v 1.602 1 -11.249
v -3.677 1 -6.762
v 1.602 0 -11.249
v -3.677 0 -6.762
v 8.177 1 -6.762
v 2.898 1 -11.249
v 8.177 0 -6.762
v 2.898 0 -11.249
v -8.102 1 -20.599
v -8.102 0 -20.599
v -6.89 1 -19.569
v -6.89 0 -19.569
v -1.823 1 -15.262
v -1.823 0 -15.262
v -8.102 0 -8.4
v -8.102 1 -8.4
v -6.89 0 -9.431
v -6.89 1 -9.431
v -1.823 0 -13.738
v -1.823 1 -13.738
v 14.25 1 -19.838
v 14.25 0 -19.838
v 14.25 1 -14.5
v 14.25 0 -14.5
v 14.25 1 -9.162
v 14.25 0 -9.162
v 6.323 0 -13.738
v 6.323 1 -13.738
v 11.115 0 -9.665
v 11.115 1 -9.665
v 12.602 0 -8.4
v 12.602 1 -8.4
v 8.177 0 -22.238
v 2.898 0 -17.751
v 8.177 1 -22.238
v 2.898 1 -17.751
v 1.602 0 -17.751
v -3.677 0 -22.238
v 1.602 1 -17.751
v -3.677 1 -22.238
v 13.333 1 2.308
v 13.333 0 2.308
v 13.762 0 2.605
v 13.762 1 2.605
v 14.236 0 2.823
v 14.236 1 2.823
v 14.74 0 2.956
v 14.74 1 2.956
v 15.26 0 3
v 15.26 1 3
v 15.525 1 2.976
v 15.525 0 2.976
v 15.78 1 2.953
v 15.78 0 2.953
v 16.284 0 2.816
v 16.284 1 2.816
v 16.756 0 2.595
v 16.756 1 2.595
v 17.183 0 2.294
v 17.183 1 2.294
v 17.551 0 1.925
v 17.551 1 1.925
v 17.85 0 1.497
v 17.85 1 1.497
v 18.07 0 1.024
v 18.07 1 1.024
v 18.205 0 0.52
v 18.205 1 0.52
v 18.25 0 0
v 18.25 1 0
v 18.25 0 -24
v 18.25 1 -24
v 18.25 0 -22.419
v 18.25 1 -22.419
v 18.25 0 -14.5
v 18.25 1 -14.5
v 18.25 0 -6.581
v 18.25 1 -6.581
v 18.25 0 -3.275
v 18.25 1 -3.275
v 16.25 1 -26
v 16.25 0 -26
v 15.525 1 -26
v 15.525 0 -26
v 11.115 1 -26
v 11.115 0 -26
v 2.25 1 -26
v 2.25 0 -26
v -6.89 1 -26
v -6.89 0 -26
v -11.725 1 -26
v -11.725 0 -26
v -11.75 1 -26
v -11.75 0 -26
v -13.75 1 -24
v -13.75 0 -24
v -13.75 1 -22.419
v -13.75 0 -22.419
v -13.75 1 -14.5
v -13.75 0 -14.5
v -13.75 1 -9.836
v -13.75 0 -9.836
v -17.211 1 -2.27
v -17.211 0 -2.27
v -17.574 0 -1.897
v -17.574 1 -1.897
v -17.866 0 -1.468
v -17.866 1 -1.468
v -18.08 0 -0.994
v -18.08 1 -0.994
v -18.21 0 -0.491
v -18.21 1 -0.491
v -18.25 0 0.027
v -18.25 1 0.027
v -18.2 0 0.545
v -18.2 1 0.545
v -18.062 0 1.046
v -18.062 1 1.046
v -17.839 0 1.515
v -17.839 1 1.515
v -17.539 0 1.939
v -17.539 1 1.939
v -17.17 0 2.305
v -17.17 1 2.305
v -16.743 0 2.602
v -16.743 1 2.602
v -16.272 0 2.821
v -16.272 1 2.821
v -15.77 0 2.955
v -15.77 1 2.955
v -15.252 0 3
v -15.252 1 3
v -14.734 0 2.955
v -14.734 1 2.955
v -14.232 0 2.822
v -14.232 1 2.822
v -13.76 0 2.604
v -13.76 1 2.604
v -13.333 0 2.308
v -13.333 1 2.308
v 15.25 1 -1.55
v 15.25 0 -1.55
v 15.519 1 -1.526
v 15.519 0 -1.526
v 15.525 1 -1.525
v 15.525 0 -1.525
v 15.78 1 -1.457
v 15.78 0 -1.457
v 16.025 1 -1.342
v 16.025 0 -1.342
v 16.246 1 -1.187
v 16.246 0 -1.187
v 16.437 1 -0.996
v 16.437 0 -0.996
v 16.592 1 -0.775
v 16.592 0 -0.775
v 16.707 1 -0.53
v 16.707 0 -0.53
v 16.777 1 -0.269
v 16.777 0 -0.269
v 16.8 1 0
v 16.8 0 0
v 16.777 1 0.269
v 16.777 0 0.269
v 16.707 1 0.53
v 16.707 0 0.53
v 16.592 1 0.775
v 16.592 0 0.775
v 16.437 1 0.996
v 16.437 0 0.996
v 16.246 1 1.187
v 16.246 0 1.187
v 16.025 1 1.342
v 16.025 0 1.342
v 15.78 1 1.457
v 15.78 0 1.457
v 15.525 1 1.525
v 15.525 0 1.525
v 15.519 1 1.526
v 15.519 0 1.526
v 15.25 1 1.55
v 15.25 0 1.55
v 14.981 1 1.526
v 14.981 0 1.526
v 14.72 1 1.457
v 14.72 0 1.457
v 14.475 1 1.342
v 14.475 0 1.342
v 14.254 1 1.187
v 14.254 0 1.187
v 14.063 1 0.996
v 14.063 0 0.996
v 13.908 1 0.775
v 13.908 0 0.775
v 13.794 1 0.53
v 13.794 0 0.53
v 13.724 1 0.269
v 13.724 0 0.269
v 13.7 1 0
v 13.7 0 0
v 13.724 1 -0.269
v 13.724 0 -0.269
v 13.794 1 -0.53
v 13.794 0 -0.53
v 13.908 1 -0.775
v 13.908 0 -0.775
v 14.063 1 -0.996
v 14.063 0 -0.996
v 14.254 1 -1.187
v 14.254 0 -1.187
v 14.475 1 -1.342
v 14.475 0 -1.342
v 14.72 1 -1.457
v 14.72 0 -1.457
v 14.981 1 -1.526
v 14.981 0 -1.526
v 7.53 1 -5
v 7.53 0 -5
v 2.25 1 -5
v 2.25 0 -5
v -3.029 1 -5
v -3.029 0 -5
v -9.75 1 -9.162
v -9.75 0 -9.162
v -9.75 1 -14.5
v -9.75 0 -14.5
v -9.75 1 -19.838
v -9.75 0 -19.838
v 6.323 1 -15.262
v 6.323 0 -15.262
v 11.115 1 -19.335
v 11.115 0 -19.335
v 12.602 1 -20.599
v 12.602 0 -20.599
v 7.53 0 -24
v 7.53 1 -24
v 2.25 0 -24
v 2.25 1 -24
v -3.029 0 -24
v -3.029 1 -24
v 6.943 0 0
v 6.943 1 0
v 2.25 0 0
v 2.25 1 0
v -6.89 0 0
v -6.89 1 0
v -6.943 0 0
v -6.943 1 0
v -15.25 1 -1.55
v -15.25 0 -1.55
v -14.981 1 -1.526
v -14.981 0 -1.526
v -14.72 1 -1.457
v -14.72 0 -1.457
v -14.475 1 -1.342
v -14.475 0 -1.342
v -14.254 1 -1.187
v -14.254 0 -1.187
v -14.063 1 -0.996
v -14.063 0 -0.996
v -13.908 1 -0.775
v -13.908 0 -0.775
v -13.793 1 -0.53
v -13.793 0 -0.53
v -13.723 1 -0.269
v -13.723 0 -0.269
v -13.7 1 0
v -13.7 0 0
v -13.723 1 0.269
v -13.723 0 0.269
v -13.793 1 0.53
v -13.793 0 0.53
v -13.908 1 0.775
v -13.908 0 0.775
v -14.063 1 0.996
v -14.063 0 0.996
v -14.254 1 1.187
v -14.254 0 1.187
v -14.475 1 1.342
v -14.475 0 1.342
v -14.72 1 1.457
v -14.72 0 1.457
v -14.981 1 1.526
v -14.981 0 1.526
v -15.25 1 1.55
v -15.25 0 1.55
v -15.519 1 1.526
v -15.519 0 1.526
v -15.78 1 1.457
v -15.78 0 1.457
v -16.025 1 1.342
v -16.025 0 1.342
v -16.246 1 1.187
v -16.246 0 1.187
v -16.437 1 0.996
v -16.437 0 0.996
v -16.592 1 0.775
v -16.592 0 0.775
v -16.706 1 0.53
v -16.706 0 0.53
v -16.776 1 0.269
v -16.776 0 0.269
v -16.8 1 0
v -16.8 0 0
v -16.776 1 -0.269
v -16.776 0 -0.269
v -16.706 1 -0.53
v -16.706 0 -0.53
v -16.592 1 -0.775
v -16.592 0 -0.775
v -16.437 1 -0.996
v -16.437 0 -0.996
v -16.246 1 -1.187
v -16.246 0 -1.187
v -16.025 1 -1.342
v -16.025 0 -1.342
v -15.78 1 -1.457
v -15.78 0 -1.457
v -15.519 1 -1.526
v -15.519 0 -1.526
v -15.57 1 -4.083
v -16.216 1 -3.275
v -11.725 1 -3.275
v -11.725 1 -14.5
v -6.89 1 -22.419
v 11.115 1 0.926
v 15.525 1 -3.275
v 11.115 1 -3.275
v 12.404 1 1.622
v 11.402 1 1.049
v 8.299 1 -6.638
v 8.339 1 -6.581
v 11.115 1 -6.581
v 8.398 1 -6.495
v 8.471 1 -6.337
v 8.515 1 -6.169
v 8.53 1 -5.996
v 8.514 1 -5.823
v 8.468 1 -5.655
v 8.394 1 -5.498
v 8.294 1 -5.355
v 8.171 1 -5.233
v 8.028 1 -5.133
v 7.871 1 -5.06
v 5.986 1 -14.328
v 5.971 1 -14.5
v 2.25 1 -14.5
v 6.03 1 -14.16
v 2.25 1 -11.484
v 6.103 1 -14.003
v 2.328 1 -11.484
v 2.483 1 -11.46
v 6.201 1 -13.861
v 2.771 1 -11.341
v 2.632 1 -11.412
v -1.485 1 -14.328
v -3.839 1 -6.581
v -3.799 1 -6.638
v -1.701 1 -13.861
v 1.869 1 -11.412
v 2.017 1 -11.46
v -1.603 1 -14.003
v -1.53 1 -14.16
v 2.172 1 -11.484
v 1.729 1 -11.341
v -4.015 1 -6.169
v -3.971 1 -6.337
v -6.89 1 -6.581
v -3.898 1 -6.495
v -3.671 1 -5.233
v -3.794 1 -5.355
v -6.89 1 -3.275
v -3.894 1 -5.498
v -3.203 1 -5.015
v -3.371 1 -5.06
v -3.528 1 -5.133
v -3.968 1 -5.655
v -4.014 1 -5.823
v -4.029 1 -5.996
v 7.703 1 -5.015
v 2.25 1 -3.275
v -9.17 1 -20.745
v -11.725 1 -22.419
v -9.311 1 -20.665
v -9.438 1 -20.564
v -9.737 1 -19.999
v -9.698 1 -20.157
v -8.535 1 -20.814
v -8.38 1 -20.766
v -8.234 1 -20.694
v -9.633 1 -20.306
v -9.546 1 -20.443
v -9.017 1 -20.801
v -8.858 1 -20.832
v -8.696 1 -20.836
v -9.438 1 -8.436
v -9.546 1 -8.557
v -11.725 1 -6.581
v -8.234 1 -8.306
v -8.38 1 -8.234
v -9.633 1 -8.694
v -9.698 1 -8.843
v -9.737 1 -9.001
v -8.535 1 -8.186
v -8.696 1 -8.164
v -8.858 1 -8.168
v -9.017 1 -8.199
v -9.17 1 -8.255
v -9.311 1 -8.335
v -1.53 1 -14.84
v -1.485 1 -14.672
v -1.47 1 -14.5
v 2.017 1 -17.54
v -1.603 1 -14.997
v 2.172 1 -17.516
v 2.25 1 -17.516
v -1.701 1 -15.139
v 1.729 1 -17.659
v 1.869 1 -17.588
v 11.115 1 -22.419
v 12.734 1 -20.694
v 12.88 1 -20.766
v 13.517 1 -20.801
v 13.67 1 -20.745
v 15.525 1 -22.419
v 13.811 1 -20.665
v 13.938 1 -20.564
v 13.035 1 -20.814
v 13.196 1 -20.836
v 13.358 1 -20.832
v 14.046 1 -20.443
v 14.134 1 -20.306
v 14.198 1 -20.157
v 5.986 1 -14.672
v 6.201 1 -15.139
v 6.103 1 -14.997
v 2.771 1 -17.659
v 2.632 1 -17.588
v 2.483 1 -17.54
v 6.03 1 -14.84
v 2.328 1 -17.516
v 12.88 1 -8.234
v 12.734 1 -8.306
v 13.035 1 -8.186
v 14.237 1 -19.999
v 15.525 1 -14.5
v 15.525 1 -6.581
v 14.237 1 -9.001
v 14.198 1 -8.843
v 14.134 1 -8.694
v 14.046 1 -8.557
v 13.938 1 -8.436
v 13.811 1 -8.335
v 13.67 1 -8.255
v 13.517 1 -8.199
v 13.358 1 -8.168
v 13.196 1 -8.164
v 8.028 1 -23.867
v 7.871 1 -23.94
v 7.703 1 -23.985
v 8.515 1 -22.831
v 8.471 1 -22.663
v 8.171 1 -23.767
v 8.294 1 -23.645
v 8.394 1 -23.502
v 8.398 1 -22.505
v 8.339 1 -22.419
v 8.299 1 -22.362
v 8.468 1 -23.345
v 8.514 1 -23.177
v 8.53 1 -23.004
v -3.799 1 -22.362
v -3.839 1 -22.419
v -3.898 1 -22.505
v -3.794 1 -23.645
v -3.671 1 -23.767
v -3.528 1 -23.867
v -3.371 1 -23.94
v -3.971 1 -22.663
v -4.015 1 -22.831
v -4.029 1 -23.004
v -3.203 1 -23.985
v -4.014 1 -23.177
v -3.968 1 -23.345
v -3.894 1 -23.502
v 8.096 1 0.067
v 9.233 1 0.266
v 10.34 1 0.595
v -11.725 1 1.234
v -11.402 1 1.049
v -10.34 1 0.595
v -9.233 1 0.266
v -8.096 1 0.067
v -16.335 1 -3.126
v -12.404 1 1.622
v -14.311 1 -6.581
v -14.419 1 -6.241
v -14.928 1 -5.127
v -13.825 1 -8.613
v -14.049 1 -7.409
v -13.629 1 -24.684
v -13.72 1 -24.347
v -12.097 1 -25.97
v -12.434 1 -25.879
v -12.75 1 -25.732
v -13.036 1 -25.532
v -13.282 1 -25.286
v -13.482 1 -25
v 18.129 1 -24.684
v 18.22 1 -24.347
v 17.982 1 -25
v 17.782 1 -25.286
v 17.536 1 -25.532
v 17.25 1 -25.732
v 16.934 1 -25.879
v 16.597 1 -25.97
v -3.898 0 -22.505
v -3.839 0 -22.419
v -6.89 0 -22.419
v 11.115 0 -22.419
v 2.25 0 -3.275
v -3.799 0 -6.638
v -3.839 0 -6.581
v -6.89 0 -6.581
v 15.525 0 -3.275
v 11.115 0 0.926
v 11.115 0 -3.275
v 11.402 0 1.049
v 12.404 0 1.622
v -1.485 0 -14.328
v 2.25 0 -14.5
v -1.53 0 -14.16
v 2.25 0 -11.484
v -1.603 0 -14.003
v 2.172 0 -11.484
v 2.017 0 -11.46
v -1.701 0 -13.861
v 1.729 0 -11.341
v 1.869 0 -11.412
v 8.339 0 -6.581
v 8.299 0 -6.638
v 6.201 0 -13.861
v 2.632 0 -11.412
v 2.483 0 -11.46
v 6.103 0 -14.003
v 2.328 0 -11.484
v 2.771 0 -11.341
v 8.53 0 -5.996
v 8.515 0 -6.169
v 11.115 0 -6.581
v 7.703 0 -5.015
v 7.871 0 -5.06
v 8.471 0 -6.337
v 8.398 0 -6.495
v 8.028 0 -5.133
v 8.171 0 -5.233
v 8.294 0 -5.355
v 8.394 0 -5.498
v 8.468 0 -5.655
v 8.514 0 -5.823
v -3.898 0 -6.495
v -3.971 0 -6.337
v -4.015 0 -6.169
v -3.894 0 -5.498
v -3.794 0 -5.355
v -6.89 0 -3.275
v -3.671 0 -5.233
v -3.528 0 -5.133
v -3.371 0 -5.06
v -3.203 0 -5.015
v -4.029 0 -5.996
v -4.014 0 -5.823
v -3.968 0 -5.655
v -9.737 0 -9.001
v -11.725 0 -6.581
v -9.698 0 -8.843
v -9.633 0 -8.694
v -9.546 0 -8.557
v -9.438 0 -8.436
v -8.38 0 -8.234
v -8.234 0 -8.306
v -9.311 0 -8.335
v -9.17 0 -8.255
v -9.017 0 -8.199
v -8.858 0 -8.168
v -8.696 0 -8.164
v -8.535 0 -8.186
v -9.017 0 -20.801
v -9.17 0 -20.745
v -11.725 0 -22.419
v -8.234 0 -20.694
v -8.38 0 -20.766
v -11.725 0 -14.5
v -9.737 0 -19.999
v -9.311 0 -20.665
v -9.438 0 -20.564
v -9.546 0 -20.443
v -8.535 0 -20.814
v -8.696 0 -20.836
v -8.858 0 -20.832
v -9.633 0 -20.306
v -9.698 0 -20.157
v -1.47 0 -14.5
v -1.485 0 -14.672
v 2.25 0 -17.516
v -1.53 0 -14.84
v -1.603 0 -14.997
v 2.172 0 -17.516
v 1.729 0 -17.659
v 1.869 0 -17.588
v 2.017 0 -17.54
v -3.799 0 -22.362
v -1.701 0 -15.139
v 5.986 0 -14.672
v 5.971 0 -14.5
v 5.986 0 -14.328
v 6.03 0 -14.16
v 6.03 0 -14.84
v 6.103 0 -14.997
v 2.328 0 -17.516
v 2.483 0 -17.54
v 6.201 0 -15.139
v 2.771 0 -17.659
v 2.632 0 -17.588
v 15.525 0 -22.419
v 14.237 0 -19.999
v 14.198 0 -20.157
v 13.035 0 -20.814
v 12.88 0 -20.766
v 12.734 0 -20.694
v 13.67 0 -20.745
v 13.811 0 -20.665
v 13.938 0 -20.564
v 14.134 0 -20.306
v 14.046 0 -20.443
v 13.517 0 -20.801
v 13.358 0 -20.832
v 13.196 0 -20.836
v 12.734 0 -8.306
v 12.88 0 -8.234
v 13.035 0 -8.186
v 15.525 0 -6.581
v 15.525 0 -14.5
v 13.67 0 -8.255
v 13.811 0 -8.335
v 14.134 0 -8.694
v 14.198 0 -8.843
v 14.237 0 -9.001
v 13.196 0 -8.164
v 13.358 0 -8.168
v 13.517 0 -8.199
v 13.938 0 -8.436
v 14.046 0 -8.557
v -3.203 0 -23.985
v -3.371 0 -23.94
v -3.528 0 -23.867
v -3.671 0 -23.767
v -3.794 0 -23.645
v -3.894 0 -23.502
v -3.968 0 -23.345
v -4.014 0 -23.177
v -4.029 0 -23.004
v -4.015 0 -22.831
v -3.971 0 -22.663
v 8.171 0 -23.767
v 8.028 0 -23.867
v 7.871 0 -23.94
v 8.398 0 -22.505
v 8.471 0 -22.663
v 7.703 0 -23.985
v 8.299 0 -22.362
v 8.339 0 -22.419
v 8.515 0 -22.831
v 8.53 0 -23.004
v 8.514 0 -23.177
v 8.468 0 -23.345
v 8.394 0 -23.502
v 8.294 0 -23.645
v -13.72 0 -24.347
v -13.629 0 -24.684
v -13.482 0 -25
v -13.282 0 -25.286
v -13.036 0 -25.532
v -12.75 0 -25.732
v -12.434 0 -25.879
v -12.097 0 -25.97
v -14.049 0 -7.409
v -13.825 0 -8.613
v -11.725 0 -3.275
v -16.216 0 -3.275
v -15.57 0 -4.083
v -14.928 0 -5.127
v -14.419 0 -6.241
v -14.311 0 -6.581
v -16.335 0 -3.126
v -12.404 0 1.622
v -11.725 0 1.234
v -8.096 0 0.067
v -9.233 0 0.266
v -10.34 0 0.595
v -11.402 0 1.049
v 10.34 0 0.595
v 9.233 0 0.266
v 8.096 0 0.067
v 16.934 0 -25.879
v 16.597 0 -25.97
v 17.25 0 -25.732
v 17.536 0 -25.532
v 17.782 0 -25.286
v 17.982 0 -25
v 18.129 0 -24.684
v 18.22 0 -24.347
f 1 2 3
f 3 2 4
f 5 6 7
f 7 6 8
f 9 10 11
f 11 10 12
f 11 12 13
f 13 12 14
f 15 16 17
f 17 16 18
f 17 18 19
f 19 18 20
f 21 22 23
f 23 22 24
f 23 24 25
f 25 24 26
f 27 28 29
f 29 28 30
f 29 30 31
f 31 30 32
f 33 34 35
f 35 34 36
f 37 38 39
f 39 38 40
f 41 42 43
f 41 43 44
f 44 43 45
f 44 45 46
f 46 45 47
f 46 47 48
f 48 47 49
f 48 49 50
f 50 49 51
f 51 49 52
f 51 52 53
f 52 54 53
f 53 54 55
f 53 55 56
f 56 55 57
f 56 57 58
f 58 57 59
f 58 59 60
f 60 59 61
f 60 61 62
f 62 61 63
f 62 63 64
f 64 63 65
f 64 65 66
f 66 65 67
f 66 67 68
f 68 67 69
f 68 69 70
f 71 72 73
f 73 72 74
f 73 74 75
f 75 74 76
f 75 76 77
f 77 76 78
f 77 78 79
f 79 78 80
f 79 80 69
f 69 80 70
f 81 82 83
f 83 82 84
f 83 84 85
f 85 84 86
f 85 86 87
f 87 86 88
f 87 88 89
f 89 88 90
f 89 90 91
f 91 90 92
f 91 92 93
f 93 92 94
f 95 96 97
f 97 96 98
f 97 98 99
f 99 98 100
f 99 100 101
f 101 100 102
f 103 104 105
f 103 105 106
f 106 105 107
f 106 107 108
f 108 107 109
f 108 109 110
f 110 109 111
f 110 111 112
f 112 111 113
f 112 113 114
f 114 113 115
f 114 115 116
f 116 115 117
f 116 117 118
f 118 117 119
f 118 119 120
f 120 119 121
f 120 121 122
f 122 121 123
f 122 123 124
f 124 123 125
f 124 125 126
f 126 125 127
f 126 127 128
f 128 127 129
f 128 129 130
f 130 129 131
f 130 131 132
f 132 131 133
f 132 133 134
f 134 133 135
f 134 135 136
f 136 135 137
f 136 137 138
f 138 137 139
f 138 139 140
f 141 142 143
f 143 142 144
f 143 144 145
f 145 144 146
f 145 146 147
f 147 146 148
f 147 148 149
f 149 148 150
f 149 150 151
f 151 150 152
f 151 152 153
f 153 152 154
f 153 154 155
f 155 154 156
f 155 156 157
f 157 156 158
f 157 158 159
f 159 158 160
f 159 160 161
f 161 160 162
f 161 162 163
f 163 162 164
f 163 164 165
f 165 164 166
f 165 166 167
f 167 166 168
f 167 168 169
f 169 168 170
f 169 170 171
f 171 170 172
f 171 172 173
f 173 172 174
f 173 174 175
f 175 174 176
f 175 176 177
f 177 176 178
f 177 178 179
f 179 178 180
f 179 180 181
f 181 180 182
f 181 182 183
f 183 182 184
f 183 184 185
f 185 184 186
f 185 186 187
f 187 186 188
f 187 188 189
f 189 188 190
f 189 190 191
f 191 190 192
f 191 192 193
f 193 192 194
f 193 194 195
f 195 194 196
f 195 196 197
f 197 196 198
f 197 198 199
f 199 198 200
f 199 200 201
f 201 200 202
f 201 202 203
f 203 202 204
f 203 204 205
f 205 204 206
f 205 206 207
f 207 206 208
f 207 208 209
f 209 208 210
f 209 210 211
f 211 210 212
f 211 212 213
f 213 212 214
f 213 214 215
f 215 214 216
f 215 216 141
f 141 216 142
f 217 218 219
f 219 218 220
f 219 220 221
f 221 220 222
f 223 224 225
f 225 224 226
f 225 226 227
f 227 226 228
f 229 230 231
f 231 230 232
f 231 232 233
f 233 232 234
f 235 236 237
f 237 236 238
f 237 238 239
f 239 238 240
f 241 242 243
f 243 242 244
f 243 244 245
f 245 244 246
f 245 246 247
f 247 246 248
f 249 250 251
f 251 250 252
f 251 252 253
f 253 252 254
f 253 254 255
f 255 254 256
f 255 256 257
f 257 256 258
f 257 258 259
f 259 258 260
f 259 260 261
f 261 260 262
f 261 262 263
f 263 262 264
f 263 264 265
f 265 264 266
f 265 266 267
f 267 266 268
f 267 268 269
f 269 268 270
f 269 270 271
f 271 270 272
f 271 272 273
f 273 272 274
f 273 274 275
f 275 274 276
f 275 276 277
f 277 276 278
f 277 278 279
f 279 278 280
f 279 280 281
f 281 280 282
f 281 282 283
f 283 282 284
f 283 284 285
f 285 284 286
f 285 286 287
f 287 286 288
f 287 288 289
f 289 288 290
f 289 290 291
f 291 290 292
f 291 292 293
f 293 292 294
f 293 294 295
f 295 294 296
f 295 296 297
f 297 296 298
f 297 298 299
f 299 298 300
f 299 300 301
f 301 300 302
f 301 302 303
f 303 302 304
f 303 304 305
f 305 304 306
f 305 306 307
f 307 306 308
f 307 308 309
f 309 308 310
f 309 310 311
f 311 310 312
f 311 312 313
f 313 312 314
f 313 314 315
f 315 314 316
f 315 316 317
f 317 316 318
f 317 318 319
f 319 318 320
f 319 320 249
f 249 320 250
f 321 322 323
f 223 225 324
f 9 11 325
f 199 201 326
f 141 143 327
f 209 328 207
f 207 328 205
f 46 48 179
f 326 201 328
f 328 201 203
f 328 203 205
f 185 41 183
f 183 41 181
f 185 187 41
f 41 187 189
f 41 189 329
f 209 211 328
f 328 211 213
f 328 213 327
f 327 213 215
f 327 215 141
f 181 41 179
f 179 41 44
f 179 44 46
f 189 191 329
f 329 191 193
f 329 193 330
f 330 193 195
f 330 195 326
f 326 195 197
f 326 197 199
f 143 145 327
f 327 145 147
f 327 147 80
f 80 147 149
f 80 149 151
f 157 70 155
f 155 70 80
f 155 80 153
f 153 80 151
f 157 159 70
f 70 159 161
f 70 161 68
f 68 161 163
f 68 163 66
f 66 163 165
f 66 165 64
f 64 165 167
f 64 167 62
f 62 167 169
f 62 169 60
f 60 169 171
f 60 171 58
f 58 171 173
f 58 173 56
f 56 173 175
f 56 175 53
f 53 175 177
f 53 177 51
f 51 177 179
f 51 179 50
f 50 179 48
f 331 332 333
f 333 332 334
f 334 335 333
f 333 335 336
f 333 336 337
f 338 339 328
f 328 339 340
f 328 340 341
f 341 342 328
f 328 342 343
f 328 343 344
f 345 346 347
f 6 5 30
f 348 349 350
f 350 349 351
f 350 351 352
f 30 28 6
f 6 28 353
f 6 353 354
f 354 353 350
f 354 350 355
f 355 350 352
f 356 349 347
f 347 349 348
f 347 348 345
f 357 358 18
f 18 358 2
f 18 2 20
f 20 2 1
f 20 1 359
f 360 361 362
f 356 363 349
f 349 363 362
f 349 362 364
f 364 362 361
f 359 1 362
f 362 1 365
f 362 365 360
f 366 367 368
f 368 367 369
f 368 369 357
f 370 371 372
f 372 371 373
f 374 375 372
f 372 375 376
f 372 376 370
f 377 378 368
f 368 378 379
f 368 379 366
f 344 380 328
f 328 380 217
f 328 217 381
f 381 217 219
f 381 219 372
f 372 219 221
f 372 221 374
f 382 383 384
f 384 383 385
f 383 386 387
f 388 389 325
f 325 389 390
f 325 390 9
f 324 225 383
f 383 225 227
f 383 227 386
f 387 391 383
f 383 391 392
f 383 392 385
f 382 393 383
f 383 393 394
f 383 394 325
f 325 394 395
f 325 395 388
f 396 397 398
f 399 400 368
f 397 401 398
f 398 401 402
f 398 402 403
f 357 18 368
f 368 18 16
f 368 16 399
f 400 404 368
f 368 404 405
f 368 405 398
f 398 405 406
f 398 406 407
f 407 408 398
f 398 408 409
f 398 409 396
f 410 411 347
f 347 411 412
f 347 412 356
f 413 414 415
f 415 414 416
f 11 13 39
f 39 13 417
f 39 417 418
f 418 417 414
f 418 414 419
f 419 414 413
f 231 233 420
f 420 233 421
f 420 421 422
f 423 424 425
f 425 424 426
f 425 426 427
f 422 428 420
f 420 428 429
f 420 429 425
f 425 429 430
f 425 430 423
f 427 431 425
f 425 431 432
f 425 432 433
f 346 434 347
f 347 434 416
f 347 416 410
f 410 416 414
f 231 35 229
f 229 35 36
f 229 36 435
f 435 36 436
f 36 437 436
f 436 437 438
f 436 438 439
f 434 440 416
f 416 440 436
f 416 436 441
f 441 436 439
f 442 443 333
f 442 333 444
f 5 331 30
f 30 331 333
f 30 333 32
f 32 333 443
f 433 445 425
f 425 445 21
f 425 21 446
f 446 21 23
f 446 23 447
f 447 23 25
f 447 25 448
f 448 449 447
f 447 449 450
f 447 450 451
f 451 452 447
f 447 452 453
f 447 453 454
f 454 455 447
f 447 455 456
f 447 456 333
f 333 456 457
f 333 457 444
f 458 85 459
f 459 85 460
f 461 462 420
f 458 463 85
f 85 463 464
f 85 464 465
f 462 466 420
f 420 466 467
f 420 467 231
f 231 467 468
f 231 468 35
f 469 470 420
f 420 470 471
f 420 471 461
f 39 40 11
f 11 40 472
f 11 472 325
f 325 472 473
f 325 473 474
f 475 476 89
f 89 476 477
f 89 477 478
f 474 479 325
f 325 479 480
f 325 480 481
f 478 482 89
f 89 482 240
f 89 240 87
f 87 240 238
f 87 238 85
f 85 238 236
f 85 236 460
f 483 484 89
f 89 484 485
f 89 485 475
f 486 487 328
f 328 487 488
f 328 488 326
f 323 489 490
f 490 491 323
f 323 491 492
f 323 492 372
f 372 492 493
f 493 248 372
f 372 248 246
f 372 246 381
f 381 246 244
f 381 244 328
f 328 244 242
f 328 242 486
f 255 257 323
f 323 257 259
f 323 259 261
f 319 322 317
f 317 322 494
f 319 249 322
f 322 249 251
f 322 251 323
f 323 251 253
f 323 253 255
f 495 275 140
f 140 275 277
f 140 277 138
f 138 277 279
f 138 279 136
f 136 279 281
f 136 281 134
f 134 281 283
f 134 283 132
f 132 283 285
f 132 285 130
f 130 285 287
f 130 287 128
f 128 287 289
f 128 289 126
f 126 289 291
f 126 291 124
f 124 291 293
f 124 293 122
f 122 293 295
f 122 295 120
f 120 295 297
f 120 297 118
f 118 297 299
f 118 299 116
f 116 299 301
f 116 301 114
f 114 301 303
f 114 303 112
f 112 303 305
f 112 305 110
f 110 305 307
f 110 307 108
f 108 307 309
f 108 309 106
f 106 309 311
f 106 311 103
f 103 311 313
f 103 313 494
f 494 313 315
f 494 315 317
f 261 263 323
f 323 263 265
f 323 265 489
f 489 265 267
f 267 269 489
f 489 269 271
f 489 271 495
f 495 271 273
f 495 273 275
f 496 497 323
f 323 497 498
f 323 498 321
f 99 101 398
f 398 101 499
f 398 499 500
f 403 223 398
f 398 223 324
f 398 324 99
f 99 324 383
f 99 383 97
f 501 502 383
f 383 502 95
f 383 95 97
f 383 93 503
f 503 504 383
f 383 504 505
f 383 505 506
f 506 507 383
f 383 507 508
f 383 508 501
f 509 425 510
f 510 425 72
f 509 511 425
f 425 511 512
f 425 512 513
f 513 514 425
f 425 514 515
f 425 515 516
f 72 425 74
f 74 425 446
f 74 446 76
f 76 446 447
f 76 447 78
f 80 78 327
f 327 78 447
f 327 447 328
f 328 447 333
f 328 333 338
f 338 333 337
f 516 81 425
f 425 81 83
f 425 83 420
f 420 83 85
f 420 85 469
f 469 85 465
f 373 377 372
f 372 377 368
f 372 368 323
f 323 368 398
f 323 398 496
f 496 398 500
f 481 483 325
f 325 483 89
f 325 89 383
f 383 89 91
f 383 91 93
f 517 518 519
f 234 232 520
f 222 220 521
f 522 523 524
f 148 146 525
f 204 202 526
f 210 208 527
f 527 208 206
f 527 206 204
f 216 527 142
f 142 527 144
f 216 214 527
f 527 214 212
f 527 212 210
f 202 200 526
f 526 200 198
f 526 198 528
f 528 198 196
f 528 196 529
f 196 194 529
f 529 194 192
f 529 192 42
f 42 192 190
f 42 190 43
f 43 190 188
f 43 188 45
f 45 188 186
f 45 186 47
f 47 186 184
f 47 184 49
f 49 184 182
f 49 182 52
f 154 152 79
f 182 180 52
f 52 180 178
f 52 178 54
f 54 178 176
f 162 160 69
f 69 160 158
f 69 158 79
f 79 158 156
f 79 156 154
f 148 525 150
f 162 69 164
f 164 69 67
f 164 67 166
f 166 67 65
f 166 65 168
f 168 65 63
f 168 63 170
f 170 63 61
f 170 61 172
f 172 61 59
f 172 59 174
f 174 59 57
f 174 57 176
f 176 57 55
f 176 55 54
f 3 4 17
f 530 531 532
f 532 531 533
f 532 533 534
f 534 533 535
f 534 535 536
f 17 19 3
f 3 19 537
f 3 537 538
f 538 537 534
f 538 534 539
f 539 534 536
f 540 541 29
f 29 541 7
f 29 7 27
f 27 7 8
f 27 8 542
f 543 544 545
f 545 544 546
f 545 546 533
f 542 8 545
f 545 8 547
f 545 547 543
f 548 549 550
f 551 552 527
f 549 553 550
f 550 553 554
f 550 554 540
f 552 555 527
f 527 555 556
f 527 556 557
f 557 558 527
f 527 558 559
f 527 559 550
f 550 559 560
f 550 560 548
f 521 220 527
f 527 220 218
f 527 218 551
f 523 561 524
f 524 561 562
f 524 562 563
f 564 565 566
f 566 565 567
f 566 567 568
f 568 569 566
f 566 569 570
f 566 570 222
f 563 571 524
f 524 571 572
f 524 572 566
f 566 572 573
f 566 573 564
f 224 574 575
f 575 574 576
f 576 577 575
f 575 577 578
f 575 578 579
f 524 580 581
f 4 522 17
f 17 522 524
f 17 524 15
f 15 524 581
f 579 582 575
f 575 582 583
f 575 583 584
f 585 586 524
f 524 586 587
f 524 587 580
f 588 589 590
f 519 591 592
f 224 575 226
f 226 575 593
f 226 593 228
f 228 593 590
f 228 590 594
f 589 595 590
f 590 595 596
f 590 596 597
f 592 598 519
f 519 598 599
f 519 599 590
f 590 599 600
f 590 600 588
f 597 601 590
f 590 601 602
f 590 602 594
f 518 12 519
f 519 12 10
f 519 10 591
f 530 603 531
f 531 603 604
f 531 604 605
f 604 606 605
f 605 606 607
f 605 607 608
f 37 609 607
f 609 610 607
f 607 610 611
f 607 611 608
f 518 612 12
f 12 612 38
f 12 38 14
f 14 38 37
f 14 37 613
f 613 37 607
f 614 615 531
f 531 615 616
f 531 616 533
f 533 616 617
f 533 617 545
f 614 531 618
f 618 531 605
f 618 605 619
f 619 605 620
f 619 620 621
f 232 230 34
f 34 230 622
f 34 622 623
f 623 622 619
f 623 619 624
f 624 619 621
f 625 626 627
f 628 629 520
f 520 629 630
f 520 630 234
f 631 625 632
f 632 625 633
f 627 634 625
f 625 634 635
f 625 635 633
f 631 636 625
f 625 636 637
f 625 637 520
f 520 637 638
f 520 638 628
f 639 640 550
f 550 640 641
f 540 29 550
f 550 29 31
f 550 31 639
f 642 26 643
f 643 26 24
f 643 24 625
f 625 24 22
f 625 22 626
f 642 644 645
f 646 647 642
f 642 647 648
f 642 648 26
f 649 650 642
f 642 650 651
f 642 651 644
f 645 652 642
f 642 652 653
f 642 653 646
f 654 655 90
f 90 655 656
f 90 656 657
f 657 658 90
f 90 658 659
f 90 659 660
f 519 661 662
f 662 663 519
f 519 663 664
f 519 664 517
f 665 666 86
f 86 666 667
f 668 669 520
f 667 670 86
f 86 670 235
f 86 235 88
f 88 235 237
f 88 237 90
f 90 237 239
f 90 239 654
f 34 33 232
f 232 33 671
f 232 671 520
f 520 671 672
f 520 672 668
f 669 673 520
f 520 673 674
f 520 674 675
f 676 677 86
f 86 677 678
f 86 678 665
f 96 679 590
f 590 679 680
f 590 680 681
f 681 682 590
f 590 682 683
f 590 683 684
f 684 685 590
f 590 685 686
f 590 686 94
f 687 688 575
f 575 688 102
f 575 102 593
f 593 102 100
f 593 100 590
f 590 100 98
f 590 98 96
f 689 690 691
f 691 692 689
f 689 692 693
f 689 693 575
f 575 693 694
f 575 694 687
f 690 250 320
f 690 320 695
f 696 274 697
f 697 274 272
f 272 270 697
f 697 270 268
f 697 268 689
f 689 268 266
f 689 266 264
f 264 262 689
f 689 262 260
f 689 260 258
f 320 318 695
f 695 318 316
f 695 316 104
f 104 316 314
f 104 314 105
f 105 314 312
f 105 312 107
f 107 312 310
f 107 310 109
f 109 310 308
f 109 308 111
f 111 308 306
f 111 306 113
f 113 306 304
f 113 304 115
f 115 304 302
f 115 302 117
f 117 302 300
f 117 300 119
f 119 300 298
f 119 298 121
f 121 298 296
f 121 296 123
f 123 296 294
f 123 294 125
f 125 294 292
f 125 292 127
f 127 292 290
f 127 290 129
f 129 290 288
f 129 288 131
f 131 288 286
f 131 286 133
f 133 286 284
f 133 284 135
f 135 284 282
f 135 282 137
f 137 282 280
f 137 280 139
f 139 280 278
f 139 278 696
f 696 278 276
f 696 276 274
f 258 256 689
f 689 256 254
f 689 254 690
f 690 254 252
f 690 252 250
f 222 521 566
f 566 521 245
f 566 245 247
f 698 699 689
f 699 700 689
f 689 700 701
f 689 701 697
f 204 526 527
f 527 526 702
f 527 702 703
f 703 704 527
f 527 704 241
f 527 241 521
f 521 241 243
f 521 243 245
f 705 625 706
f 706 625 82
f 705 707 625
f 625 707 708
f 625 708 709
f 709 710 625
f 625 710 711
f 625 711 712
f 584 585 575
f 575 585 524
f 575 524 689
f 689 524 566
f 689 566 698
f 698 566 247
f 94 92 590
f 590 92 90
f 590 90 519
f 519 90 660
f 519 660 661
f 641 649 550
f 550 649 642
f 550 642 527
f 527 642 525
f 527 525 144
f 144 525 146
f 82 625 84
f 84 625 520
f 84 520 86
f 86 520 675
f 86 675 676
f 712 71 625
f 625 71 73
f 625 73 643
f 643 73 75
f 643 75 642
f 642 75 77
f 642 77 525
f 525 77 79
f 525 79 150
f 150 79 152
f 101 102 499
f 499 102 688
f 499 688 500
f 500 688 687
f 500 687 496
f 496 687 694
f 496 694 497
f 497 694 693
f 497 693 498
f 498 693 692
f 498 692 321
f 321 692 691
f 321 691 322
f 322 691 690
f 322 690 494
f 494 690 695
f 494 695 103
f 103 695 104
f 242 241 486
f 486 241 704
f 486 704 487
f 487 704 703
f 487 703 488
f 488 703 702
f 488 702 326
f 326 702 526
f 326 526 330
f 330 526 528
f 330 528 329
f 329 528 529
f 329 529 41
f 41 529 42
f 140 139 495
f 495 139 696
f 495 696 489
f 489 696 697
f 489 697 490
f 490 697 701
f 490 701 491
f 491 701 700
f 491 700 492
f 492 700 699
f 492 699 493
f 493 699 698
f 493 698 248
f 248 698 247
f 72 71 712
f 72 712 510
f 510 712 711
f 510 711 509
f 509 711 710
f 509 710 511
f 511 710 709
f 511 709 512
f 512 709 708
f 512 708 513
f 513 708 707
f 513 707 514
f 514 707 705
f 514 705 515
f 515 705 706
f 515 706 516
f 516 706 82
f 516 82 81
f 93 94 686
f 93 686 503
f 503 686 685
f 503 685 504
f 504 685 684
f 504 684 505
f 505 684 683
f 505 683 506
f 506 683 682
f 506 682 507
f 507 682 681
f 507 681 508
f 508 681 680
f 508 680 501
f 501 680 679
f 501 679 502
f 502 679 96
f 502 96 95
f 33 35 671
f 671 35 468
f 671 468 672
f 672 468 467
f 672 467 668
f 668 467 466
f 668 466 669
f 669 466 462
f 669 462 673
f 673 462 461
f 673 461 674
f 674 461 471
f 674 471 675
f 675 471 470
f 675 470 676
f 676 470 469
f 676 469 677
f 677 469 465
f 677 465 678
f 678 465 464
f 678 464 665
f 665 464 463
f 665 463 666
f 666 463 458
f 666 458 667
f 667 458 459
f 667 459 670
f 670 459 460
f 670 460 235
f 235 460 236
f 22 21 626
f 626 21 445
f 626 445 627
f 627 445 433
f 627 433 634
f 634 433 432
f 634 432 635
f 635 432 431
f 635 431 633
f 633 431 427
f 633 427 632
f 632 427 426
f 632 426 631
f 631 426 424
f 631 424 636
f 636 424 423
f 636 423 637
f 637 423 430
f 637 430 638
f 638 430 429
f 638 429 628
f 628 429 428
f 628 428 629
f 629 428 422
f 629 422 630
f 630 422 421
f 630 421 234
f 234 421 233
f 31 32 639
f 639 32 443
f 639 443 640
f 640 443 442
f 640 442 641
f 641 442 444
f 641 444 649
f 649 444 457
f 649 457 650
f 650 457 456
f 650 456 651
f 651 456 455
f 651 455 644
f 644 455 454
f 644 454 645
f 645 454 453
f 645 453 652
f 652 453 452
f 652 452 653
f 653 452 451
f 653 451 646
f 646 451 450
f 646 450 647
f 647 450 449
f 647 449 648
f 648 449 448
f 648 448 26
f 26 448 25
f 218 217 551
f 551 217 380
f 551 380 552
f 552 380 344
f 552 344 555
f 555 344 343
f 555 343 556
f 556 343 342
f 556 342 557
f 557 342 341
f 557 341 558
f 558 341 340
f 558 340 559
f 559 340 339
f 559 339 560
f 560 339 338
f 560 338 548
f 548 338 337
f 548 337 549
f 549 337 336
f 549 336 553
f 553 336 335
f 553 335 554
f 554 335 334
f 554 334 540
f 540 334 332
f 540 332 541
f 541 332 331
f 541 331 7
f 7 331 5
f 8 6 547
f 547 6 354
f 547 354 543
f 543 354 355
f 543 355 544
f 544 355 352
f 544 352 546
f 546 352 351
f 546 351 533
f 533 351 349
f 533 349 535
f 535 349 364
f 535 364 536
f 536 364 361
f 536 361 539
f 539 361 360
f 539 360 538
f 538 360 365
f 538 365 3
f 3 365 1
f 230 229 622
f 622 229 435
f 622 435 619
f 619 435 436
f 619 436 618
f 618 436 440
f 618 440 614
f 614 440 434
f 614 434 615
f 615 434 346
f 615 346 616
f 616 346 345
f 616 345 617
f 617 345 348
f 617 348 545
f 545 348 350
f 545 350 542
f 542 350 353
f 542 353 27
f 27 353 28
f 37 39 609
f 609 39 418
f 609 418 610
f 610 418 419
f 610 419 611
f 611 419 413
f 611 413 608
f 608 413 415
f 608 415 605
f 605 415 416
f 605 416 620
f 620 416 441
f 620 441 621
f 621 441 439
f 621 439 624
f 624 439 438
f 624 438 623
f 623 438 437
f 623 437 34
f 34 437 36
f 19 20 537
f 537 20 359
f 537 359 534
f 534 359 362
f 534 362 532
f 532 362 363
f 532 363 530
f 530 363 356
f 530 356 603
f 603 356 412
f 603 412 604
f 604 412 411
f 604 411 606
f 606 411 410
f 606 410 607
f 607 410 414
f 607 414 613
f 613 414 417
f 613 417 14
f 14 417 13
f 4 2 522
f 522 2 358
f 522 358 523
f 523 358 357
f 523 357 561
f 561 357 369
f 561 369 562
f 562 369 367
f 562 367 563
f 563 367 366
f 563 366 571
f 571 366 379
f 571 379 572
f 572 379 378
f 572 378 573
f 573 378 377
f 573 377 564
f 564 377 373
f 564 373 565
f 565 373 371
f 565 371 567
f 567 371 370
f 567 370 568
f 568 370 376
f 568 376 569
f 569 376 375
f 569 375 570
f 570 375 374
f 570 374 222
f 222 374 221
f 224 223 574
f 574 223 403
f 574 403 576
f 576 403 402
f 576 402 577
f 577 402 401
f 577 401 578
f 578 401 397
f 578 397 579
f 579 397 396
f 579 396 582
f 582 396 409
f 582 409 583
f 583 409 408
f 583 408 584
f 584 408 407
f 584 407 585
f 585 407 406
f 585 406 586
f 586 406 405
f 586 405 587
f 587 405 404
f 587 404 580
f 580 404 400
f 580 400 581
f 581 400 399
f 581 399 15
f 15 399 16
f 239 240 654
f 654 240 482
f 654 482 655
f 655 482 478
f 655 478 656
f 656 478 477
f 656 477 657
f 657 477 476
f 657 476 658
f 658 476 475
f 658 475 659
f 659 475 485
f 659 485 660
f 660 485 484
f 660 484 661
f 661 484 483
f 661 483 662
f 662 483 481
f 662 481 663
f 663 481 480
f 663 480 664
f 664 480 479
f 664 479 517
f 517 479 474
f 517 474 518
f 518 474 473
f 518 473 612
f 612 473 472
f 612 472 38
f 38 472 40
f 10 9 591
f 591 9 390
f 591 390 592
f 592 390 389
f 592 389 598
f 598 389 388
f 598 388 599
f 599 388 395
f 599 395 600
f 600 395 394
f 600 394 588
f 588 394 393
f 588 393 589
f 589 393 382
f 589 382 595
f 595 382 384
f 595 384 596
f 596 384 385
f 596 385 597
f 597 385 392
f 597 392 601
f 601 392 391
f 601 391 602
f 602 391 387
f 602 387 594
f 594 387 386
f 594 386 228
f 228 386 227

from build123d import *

# Parameters (mm, degrees)
SKETCH2_R           = 1.55
BOSS_EXTRUDE1_DEPTH = 1
FILLET1_R           = 10
FILLET2_R           = 2
FILLET3_R           = 1


with BuildPart() as part:
    # Sketch2 → Boss-Extrude1 (new body)
    # profile 1 of 2: a face of its own
    with BuildSketch(Plane(origin=(0, 0, 0), x_dir=(1, 0, 0), z_dir=(0, 1, 0))):
        with BuildLine():
            Line((-13.75, 26), (-13.75, 3))
            Line((-13.75, 3), (15.25, 3))
            ThreePointArc((15.25, 3), (17.371320344, 2.121320344), (18.25, 0))
            Line((18.25, 0), (18.25, 26))
            Line((18.25, 26), (-13.75, 26))
        make_face()
        Polygon((2.25, 11.8), (10.25, 5), (-5.75, 5), align=None, mode=Mode.SUBTRACT)
        Polygon((-9.75, 7), (-9.75, 22), (-0.926470588, 14.5), align=None, mode=Mode.SUBTRACT)
        Polygon((5.426470588, 14.5), (14.25, 22), (14.25, 7), align=None, mode=Mode.SUBTRACT)
        Polygon((-5.75, 24), (10.25, 24), (2.25, 17.2), align=None, mode=Mode.SUBTRACT)
    # profile 2 of 2: a face of its own
    with BuildSketch(Plane(origin=(0, 0, 0), x_dir=(1, 0, 0), z_dir=(0, 1, 0))):
        with BuildLine():
            ThreePointArc((15.25, -3), (13.128679656, -2.121320344), (12.25, 0))
            Line((12.25, 0), (-12.25, 0))
            ThreePointArc((-12.25, 0), (-13.128679656, -2.121320344), (-15.25, -3))
            ThreePointArc((-15.25, -3), (-18.25, 0), (-15.25, 3))
            Line((-15.25, 3), (15.25, 3))
            ThreePointArc((15.25, 3), (18.25, 0), (15.25, -3))
        make_face()
        with Locations(Location((15.25, 0, 0), (0, 0, 270))):
            Circle(SKETCH2_R, mode=Mode.SUBTRACT)
        with Locations(Location((-15.25, 0, 0), (0, 0, 270))):
            Circle(SKETCH2_R, mode=Mode.SUBTRACT)
    extrude(amount=BOSS_EXTRUDE1_DEPTH)

    # Fillet1
    fillet1_edges = [part.edges().sort_by_distance(p)[0] for p in [
        (-13.75, 0.5, -3),
        (12.25, 0.5, 0),
        (-12.25, 0.5, 0),
    ]]
    fillet(fillet1_edges, radius=FILLET1_R)

    # Fillet2
    fillet2_edges = [part.edges().sort_by_distance(p)[0] for p in [
        (-13.75, 0.5, -26),
        (18.25, 0.5, -26),
    ]]
    fillet(fillet2_edges, radius=FILLET2_R)

    # Fillet3
    fillet3_edges = [part.edges().sort_by_distance(p)[0] for p in [
        (-5.75, 0.5, -5),
        (10.25, 0.5, -5),
        (2.25, 0.5, -11.8),
        (-9.75, 0.5, -22),
        (-9.75, 0.5, -7),
        (-0.926470588, 0.5, -14.5),
        (14.25, 0.5, -22),
        (5.426470588, 0.5, -14.5),
        (14.25, 0.5, -7),
        (10.25, 0.5, -24),
        (-5.75, 0.5, -24),
        (2.25, 0.5, -17.2),
    ]]
    fillet(fillet3_edges, radius=FILLET3_R)


solid = part.part
